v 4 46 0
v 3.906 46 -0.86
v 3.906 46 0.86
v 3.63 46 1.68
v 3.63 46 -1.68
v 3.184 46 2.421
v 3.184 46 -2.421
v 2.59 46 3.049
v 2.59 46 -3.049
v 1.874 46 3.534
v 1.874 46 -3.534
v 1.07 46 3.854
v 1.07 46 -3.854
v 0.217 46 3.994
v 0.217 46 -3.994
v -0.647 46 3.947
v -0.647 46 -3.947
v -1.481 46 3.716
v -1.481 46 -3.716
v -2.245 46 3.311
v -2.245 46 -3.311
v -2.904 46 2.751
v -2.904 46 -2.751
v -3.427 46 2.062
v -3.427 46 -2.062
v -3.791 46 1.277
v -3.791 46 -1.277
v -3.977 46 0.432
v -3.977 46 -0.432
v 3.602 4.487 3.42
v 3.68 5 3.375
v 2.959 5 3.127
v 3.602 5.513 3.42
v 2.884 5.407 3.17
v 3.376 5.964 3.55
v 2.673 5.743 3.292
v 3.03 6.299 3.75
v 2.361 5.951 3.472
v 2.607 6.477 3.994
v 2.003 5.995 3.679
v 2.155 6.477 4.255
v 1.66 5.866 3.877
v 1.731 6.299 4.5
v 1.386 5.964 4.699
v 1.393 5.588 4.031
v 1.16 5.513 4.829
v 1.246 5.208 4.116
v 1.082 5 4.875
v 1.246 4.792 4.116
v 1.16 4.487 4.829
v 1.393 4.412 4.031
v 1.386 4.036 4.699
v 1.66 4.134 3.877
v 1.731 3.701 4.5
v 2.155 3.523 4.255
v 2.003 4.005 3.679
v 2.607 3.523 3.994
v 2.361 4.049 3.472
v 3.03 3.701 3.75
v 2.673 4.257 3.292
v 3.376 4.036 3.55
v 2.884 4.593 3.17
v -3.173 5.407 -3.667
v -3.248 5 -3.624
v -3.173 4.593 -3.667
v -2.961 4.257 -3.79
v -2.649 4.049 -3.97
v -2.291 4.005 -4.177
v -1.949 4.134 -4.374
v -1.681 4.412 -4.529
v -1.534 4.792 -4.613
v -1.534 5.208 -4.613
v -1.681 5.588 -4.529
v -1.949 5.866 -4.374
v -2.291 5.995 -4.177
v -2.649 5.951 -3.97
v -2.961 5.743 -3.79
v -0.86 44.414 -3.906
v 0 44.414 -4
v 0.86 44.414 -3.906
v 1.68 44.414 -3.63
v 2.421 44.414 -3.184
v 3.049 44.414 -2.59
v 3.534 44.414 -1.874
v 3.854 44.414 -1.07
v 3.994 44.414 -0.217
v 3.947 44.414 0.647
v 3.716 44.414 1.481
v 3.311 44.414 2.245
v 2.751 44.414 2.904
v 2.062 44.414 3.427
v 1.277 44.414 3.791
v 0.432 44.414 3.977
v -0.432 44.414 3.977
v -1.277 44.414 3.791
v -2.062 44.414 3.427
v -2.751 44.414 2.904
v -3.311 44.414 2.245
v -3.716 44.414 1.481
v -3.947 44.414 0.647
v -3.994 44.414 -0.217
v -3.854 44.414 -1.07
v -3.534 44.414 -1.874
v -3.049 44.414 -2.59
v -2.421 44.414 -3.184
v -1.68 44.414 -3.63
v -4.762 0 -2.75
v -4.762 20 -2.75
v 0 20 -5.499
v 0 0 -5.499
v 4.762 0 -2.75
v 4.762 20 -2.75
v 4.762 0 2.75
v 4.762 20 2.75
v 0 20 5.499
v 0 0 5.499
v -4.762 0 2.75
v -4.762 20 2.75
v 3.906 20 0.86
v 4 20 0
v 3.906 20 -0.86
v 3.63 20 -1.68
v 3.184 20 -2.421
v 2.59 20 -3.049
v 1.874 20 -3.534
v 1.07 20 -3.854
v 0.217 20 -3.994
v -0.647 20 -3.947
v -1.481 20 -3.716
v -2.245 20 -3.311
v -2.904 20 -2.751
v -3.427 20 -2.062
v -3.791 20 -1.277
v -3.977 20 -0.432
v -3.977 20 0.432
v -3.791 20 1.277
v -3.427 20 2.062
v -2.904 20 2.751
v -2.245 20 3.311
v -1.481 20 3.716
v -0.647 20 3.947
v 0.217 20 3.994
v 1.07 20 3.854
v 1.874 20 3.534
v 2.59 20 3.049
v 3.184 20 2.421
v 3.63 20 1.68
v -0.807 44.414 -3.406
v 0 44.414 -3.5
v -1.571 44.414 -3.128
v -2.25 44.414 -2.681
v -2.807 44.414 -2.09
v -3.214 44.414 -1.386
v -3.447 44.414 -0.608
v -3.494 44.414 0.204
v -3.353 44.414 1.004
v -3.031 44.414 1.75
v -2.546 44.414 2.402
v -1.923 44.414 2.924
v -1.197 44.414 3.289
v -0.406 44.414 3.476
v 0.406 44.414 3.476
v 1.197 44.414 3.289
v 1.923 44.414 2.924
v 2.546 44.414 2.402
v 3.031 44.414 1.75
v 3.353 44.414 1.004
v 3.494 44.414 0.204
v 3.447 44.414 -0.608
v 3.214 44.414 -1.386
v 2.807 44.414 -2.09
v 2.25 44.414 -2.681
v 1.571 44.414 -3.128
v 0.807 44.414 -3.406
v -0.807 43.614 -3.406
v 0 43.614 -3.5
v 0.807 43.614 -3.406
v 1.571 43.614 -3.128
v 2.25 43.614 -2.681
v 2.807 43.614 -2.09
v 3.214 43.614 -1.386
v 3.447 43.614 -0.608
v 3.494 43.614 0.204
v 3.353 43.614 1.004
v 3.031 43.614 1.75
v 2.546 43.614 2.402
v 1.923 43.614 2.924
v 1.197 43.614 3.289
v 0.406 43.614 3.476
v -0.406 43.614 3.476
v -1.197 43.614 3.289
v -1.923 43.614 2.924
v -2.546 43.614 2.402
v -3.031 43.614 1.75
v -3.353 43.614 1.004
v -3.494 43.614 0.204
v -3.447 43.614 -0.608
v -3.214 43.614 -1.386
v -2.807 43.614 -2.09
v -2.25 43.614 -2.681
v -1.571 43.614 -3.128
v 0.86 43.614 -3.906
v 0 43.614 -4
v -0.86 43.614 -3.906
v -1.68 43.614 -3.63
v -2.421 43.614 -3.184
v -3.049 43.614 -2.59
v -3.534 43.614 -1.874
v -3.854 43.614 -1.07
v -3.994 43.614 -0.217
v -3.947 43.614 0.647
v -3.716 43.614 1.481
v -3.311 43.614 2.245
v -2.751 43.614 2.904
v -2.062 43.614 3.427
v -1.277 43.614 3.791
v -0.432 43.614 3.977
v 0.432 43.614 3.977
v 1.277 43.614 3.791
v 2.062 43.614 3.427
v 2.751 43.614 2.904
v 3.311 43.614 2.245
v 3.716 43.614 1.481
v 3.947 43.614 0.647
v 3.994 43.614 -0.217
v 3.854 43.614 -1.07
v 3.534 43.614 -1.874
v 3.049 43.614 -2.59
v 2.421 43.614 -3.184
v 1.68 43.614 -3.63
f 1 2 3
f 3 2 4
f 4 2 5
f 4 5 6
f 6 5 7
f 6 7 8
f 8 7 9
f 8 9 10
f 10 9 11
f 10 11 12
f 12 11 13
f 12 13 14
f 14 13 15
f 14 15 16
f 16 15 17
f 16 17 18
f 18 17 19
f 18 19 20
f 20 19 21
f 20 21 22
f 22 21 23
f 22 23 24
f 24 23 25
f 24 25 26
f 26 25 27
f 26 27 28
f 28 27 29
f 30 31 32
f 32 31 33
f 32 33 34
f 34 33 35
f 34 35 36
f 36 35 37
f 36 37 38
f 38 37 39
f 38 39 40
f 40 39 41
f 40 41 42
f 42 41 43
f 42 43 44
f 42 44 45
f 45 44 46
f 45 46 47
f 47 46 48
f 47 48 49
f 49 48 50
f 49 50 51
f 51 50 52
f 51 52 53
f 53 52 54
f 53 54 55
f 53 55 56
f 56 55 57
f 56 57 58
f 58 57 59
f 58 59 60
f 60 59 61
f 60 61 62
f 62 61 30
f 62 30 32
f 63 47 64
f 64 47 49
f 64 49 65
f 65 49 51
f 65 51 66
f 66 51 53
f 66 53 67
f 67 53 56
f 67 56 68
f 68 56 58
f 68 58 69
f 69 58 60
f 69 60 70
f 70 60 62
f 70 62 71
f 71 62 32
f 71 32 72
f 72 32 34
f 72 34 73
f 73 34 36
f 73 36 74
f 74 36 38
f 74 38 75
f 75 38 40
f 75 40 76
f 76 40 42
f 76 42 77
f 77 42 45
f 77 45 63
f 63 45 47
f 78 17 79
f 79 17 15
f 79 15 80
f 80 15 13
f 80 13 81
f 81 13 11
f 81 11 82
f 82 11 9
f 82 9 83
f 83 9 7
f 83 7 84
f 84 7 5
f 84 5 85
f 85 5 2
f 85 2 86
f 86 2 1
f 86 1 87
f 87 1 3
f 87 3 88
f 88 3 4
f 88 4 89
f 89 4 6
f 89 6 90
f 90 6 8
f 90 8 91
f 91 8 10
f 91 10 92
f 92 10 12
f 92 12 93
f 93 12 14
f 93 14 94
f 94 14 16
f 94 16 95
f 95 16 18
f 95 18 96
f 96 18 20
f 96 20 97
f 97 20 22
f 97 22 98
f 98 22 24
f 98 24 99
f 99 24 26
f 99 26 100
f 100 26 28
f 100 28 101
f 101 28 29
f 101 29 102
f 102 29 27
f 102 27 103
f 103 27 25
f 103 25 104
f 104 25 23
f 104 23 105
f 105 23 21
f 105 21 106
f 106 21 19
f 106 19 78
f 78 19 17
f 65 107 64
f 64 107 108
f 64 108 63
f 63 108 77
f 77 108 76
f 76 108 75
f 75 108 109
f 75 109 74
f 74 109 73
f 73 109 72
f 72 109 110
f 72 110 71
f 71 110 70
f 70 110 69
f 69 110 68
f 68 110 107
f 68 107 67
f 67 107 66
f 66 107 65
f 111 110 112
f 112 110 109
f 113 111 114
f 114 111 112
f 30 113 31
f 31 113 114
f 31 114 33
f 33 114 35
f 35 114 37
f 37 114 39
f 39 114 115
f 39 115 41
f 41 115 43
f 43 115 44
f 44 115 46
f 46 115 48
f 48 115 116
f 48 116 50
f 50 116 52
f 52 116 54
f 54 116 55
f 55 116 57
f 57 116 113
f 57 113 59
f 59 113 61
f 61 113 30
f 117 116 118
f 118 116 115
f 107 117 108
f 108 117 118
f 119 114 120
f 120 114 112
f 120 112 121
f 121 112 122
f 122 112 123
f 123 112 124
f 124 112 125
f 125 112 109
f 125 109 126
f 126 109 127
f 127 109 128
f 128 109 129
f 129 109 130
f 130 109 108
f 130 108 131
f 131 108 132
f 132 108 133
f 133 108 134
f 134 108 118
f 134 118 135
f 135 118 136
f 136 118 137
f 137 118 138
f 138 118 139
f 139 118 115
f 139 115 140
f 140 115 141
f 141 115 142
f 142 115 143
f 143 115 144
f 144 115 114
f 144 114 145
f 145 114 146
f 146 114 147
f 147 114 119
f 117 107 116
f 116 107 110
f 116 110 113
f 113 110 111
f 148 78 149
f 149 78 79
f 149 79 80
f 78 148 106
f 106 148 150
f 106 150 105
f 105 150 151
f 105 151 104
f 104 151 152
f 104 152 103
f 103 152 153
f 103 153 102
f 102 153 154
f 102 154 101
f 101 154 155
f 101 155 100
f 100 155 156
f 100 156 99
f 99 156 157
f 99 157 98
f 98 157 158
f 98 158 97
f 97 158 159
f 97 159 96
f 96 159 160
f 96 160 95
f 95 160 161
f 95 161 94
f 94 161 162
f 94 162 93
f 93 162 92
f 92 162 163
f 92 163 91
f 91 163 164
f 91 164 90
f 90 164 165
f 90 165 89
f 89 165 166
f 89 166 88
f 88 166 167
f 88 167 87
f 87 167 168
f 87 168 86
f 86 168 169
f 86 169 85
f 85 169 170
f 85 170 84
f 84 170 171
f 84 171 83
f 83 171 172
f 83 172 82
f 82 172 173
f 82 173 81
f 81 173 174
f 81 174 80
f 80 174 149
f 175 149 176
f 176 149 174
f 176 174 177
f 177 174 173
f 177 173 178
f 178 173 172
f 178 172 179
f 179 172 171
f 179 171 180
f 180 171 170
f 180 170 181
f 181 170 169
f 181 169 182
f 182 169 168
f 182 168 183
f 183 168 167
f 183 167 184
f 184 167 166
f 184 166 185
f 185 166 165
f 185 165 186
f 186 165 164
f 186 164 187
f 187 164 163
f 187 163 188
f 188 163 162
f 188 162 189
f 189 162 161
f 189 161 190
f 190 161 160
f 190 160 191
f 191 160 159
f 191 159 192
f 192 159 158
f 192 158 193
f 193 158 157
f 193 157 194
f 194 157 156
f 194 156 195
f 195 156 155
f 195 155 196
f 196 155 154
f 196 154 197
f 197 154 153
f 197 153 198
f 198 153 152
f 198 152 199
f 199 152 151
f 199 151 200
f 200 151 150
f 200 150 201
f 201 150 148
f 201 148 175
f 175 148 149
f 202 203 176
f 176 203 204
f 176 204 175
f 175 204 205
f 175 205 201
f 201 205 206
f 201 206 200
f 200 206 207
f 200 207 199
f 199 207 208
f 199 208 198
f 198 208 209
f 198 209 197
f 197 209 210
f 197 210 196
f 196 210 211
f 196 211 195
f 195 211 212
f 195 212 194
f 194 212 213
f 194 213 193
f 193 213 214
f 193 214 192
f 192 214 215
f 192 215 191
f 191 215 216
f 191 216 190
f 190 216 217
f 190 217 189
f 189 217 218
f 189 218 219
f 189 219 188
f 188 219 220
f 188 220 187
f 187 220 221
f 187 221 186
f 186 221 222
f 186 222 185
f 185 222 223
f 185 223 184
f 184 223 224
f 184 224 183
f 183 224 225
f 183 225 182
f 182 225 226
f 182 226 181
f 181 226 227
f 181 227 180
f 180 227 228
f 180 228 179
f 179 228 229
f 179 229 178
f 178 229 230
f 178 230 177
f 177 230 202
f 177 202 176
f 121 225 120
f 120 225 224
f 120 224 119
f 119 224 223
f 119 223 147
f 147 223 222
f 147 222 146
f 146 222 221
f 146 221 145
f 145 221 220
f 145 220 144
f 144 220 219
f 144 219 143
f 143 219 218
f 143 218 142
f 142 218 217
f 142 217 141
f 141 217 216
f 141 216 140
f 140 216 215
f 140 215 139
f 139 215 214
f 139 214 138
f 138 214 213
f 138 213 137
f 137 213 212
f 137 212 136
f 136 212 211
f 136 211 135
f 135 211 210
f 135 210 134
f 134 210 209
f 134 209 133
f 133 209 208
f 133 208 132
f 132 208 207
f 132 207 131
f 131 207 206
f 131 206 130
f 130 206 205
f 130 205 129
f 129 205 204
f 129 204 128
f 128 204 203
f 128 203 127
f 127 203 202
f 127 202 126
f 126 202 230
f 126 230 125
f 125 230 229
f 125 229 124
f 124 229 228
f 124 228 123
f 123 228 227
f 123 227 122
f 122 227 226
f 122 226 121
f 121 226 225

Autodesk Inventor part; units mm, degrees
ref_plane "YZ Plane" through (0, 0, 0) normal (1, 0, 0) x (0, 1, 0)
ref_plane "XZ Plane" through (0, 0, 0) normal (0, 1, 0) x (-1, 0, 0)
ref_plane "XY Plane" through (0, 0, 0) normal (0, 0, 1) x (1, 0, 0)
sketch "Sketch1" plane through (0, 0, 0) normal (0, 1, 0) x (-1, 0, 0)
  line L0 (0, -5.4993) -> (-4.7625, -2.7496)
  line L1 (-4.7625, -2.7496) -> (-4.7625, 2.7496)
  line L2 (-4.7625, 2.7496) -> (0, 5.4993)
  line L3 (0, 5.4993) -> (4.7625, 2.7496)
  line L4 (4.7625, 2.7496) -> (4.7625, -2.7496)
  line L5 (4.7625, -2.7496) -> (0, -5.4993)
  point P0 (0, 0)
  point P1 (0, 0)
  dimension "d0" = 9.525
extrude "Extrusion1" add sketch "Sketch1" along normal blind 20
sketch "Sketch2" plane through (0, 20, 0) normal (0, 1, 0) x (1, 0, 0)
  circle A0 centre (0, 0) radius 4
  dimension "d3" = 8
extrude "Extrusion2" add sketch "Sketch2" along normal blind 5
sketch "Sketch4" plane through (4.7625, 0, 2.7496) normal (0.5, 0, 0.8660254) x (0.8660254, 0, -0.5)
  line L0 (-5.4993, 0) -> (0, 0) projected
  line L1 (0, 0) -> (0, 20) projected
  point P0 (-2.7496, 0)
  point P1 (-2.75, 5)
  dimension "d13" = 5
  dimension "d21" = 2.75
hole "Hole1" at (2.3809, 5, 4.1246) direction (-0.5, 0, -0.8660254) diameter 2 end through all countersink diameter 3 countersink angle 82
sketch "Sketch5" plane through (0, 25, 0) normal (0, 1, 0) x (1, 0, 0)
  circle A0 centre (0, 0) radius 4 projected
  circle A1 centre (0, 0) radius 4
extrude "Extrusion4" add sketch "Sketch5" along normal blind 21
sketch "Sketch6" plane through (0, 0, 0) normal (1, 0, 0) x (0, 1, 0)
  line L0 (20, -4) -> (46, -4) projected
  line L1 (44.414, -4) -> (43.614, -4)
  line L2 (43.614, -4) -> (43.614, -3.5)
  line L3 (43.614, -3.5) -> (44.414, -3.5)
  line L4 (44.414, -3.5) -> (44.414, -4)
  line L5 (46, -4) -> (46, 4) projected
  line L6 (46, 0) -> (35.8513, 0)
  point P0 (0, 0)
  dimension "d24" = 2.386
  dimension "d25" = 0.8
  dimension "d26" = 7
revolve "Revolution1" cut sketch "Sketch6" angle 360 about axis through (0, 46, 0) along (0, -1, 0)
properties part number "bevel gear shaft connector for versaball" material "Steel"
